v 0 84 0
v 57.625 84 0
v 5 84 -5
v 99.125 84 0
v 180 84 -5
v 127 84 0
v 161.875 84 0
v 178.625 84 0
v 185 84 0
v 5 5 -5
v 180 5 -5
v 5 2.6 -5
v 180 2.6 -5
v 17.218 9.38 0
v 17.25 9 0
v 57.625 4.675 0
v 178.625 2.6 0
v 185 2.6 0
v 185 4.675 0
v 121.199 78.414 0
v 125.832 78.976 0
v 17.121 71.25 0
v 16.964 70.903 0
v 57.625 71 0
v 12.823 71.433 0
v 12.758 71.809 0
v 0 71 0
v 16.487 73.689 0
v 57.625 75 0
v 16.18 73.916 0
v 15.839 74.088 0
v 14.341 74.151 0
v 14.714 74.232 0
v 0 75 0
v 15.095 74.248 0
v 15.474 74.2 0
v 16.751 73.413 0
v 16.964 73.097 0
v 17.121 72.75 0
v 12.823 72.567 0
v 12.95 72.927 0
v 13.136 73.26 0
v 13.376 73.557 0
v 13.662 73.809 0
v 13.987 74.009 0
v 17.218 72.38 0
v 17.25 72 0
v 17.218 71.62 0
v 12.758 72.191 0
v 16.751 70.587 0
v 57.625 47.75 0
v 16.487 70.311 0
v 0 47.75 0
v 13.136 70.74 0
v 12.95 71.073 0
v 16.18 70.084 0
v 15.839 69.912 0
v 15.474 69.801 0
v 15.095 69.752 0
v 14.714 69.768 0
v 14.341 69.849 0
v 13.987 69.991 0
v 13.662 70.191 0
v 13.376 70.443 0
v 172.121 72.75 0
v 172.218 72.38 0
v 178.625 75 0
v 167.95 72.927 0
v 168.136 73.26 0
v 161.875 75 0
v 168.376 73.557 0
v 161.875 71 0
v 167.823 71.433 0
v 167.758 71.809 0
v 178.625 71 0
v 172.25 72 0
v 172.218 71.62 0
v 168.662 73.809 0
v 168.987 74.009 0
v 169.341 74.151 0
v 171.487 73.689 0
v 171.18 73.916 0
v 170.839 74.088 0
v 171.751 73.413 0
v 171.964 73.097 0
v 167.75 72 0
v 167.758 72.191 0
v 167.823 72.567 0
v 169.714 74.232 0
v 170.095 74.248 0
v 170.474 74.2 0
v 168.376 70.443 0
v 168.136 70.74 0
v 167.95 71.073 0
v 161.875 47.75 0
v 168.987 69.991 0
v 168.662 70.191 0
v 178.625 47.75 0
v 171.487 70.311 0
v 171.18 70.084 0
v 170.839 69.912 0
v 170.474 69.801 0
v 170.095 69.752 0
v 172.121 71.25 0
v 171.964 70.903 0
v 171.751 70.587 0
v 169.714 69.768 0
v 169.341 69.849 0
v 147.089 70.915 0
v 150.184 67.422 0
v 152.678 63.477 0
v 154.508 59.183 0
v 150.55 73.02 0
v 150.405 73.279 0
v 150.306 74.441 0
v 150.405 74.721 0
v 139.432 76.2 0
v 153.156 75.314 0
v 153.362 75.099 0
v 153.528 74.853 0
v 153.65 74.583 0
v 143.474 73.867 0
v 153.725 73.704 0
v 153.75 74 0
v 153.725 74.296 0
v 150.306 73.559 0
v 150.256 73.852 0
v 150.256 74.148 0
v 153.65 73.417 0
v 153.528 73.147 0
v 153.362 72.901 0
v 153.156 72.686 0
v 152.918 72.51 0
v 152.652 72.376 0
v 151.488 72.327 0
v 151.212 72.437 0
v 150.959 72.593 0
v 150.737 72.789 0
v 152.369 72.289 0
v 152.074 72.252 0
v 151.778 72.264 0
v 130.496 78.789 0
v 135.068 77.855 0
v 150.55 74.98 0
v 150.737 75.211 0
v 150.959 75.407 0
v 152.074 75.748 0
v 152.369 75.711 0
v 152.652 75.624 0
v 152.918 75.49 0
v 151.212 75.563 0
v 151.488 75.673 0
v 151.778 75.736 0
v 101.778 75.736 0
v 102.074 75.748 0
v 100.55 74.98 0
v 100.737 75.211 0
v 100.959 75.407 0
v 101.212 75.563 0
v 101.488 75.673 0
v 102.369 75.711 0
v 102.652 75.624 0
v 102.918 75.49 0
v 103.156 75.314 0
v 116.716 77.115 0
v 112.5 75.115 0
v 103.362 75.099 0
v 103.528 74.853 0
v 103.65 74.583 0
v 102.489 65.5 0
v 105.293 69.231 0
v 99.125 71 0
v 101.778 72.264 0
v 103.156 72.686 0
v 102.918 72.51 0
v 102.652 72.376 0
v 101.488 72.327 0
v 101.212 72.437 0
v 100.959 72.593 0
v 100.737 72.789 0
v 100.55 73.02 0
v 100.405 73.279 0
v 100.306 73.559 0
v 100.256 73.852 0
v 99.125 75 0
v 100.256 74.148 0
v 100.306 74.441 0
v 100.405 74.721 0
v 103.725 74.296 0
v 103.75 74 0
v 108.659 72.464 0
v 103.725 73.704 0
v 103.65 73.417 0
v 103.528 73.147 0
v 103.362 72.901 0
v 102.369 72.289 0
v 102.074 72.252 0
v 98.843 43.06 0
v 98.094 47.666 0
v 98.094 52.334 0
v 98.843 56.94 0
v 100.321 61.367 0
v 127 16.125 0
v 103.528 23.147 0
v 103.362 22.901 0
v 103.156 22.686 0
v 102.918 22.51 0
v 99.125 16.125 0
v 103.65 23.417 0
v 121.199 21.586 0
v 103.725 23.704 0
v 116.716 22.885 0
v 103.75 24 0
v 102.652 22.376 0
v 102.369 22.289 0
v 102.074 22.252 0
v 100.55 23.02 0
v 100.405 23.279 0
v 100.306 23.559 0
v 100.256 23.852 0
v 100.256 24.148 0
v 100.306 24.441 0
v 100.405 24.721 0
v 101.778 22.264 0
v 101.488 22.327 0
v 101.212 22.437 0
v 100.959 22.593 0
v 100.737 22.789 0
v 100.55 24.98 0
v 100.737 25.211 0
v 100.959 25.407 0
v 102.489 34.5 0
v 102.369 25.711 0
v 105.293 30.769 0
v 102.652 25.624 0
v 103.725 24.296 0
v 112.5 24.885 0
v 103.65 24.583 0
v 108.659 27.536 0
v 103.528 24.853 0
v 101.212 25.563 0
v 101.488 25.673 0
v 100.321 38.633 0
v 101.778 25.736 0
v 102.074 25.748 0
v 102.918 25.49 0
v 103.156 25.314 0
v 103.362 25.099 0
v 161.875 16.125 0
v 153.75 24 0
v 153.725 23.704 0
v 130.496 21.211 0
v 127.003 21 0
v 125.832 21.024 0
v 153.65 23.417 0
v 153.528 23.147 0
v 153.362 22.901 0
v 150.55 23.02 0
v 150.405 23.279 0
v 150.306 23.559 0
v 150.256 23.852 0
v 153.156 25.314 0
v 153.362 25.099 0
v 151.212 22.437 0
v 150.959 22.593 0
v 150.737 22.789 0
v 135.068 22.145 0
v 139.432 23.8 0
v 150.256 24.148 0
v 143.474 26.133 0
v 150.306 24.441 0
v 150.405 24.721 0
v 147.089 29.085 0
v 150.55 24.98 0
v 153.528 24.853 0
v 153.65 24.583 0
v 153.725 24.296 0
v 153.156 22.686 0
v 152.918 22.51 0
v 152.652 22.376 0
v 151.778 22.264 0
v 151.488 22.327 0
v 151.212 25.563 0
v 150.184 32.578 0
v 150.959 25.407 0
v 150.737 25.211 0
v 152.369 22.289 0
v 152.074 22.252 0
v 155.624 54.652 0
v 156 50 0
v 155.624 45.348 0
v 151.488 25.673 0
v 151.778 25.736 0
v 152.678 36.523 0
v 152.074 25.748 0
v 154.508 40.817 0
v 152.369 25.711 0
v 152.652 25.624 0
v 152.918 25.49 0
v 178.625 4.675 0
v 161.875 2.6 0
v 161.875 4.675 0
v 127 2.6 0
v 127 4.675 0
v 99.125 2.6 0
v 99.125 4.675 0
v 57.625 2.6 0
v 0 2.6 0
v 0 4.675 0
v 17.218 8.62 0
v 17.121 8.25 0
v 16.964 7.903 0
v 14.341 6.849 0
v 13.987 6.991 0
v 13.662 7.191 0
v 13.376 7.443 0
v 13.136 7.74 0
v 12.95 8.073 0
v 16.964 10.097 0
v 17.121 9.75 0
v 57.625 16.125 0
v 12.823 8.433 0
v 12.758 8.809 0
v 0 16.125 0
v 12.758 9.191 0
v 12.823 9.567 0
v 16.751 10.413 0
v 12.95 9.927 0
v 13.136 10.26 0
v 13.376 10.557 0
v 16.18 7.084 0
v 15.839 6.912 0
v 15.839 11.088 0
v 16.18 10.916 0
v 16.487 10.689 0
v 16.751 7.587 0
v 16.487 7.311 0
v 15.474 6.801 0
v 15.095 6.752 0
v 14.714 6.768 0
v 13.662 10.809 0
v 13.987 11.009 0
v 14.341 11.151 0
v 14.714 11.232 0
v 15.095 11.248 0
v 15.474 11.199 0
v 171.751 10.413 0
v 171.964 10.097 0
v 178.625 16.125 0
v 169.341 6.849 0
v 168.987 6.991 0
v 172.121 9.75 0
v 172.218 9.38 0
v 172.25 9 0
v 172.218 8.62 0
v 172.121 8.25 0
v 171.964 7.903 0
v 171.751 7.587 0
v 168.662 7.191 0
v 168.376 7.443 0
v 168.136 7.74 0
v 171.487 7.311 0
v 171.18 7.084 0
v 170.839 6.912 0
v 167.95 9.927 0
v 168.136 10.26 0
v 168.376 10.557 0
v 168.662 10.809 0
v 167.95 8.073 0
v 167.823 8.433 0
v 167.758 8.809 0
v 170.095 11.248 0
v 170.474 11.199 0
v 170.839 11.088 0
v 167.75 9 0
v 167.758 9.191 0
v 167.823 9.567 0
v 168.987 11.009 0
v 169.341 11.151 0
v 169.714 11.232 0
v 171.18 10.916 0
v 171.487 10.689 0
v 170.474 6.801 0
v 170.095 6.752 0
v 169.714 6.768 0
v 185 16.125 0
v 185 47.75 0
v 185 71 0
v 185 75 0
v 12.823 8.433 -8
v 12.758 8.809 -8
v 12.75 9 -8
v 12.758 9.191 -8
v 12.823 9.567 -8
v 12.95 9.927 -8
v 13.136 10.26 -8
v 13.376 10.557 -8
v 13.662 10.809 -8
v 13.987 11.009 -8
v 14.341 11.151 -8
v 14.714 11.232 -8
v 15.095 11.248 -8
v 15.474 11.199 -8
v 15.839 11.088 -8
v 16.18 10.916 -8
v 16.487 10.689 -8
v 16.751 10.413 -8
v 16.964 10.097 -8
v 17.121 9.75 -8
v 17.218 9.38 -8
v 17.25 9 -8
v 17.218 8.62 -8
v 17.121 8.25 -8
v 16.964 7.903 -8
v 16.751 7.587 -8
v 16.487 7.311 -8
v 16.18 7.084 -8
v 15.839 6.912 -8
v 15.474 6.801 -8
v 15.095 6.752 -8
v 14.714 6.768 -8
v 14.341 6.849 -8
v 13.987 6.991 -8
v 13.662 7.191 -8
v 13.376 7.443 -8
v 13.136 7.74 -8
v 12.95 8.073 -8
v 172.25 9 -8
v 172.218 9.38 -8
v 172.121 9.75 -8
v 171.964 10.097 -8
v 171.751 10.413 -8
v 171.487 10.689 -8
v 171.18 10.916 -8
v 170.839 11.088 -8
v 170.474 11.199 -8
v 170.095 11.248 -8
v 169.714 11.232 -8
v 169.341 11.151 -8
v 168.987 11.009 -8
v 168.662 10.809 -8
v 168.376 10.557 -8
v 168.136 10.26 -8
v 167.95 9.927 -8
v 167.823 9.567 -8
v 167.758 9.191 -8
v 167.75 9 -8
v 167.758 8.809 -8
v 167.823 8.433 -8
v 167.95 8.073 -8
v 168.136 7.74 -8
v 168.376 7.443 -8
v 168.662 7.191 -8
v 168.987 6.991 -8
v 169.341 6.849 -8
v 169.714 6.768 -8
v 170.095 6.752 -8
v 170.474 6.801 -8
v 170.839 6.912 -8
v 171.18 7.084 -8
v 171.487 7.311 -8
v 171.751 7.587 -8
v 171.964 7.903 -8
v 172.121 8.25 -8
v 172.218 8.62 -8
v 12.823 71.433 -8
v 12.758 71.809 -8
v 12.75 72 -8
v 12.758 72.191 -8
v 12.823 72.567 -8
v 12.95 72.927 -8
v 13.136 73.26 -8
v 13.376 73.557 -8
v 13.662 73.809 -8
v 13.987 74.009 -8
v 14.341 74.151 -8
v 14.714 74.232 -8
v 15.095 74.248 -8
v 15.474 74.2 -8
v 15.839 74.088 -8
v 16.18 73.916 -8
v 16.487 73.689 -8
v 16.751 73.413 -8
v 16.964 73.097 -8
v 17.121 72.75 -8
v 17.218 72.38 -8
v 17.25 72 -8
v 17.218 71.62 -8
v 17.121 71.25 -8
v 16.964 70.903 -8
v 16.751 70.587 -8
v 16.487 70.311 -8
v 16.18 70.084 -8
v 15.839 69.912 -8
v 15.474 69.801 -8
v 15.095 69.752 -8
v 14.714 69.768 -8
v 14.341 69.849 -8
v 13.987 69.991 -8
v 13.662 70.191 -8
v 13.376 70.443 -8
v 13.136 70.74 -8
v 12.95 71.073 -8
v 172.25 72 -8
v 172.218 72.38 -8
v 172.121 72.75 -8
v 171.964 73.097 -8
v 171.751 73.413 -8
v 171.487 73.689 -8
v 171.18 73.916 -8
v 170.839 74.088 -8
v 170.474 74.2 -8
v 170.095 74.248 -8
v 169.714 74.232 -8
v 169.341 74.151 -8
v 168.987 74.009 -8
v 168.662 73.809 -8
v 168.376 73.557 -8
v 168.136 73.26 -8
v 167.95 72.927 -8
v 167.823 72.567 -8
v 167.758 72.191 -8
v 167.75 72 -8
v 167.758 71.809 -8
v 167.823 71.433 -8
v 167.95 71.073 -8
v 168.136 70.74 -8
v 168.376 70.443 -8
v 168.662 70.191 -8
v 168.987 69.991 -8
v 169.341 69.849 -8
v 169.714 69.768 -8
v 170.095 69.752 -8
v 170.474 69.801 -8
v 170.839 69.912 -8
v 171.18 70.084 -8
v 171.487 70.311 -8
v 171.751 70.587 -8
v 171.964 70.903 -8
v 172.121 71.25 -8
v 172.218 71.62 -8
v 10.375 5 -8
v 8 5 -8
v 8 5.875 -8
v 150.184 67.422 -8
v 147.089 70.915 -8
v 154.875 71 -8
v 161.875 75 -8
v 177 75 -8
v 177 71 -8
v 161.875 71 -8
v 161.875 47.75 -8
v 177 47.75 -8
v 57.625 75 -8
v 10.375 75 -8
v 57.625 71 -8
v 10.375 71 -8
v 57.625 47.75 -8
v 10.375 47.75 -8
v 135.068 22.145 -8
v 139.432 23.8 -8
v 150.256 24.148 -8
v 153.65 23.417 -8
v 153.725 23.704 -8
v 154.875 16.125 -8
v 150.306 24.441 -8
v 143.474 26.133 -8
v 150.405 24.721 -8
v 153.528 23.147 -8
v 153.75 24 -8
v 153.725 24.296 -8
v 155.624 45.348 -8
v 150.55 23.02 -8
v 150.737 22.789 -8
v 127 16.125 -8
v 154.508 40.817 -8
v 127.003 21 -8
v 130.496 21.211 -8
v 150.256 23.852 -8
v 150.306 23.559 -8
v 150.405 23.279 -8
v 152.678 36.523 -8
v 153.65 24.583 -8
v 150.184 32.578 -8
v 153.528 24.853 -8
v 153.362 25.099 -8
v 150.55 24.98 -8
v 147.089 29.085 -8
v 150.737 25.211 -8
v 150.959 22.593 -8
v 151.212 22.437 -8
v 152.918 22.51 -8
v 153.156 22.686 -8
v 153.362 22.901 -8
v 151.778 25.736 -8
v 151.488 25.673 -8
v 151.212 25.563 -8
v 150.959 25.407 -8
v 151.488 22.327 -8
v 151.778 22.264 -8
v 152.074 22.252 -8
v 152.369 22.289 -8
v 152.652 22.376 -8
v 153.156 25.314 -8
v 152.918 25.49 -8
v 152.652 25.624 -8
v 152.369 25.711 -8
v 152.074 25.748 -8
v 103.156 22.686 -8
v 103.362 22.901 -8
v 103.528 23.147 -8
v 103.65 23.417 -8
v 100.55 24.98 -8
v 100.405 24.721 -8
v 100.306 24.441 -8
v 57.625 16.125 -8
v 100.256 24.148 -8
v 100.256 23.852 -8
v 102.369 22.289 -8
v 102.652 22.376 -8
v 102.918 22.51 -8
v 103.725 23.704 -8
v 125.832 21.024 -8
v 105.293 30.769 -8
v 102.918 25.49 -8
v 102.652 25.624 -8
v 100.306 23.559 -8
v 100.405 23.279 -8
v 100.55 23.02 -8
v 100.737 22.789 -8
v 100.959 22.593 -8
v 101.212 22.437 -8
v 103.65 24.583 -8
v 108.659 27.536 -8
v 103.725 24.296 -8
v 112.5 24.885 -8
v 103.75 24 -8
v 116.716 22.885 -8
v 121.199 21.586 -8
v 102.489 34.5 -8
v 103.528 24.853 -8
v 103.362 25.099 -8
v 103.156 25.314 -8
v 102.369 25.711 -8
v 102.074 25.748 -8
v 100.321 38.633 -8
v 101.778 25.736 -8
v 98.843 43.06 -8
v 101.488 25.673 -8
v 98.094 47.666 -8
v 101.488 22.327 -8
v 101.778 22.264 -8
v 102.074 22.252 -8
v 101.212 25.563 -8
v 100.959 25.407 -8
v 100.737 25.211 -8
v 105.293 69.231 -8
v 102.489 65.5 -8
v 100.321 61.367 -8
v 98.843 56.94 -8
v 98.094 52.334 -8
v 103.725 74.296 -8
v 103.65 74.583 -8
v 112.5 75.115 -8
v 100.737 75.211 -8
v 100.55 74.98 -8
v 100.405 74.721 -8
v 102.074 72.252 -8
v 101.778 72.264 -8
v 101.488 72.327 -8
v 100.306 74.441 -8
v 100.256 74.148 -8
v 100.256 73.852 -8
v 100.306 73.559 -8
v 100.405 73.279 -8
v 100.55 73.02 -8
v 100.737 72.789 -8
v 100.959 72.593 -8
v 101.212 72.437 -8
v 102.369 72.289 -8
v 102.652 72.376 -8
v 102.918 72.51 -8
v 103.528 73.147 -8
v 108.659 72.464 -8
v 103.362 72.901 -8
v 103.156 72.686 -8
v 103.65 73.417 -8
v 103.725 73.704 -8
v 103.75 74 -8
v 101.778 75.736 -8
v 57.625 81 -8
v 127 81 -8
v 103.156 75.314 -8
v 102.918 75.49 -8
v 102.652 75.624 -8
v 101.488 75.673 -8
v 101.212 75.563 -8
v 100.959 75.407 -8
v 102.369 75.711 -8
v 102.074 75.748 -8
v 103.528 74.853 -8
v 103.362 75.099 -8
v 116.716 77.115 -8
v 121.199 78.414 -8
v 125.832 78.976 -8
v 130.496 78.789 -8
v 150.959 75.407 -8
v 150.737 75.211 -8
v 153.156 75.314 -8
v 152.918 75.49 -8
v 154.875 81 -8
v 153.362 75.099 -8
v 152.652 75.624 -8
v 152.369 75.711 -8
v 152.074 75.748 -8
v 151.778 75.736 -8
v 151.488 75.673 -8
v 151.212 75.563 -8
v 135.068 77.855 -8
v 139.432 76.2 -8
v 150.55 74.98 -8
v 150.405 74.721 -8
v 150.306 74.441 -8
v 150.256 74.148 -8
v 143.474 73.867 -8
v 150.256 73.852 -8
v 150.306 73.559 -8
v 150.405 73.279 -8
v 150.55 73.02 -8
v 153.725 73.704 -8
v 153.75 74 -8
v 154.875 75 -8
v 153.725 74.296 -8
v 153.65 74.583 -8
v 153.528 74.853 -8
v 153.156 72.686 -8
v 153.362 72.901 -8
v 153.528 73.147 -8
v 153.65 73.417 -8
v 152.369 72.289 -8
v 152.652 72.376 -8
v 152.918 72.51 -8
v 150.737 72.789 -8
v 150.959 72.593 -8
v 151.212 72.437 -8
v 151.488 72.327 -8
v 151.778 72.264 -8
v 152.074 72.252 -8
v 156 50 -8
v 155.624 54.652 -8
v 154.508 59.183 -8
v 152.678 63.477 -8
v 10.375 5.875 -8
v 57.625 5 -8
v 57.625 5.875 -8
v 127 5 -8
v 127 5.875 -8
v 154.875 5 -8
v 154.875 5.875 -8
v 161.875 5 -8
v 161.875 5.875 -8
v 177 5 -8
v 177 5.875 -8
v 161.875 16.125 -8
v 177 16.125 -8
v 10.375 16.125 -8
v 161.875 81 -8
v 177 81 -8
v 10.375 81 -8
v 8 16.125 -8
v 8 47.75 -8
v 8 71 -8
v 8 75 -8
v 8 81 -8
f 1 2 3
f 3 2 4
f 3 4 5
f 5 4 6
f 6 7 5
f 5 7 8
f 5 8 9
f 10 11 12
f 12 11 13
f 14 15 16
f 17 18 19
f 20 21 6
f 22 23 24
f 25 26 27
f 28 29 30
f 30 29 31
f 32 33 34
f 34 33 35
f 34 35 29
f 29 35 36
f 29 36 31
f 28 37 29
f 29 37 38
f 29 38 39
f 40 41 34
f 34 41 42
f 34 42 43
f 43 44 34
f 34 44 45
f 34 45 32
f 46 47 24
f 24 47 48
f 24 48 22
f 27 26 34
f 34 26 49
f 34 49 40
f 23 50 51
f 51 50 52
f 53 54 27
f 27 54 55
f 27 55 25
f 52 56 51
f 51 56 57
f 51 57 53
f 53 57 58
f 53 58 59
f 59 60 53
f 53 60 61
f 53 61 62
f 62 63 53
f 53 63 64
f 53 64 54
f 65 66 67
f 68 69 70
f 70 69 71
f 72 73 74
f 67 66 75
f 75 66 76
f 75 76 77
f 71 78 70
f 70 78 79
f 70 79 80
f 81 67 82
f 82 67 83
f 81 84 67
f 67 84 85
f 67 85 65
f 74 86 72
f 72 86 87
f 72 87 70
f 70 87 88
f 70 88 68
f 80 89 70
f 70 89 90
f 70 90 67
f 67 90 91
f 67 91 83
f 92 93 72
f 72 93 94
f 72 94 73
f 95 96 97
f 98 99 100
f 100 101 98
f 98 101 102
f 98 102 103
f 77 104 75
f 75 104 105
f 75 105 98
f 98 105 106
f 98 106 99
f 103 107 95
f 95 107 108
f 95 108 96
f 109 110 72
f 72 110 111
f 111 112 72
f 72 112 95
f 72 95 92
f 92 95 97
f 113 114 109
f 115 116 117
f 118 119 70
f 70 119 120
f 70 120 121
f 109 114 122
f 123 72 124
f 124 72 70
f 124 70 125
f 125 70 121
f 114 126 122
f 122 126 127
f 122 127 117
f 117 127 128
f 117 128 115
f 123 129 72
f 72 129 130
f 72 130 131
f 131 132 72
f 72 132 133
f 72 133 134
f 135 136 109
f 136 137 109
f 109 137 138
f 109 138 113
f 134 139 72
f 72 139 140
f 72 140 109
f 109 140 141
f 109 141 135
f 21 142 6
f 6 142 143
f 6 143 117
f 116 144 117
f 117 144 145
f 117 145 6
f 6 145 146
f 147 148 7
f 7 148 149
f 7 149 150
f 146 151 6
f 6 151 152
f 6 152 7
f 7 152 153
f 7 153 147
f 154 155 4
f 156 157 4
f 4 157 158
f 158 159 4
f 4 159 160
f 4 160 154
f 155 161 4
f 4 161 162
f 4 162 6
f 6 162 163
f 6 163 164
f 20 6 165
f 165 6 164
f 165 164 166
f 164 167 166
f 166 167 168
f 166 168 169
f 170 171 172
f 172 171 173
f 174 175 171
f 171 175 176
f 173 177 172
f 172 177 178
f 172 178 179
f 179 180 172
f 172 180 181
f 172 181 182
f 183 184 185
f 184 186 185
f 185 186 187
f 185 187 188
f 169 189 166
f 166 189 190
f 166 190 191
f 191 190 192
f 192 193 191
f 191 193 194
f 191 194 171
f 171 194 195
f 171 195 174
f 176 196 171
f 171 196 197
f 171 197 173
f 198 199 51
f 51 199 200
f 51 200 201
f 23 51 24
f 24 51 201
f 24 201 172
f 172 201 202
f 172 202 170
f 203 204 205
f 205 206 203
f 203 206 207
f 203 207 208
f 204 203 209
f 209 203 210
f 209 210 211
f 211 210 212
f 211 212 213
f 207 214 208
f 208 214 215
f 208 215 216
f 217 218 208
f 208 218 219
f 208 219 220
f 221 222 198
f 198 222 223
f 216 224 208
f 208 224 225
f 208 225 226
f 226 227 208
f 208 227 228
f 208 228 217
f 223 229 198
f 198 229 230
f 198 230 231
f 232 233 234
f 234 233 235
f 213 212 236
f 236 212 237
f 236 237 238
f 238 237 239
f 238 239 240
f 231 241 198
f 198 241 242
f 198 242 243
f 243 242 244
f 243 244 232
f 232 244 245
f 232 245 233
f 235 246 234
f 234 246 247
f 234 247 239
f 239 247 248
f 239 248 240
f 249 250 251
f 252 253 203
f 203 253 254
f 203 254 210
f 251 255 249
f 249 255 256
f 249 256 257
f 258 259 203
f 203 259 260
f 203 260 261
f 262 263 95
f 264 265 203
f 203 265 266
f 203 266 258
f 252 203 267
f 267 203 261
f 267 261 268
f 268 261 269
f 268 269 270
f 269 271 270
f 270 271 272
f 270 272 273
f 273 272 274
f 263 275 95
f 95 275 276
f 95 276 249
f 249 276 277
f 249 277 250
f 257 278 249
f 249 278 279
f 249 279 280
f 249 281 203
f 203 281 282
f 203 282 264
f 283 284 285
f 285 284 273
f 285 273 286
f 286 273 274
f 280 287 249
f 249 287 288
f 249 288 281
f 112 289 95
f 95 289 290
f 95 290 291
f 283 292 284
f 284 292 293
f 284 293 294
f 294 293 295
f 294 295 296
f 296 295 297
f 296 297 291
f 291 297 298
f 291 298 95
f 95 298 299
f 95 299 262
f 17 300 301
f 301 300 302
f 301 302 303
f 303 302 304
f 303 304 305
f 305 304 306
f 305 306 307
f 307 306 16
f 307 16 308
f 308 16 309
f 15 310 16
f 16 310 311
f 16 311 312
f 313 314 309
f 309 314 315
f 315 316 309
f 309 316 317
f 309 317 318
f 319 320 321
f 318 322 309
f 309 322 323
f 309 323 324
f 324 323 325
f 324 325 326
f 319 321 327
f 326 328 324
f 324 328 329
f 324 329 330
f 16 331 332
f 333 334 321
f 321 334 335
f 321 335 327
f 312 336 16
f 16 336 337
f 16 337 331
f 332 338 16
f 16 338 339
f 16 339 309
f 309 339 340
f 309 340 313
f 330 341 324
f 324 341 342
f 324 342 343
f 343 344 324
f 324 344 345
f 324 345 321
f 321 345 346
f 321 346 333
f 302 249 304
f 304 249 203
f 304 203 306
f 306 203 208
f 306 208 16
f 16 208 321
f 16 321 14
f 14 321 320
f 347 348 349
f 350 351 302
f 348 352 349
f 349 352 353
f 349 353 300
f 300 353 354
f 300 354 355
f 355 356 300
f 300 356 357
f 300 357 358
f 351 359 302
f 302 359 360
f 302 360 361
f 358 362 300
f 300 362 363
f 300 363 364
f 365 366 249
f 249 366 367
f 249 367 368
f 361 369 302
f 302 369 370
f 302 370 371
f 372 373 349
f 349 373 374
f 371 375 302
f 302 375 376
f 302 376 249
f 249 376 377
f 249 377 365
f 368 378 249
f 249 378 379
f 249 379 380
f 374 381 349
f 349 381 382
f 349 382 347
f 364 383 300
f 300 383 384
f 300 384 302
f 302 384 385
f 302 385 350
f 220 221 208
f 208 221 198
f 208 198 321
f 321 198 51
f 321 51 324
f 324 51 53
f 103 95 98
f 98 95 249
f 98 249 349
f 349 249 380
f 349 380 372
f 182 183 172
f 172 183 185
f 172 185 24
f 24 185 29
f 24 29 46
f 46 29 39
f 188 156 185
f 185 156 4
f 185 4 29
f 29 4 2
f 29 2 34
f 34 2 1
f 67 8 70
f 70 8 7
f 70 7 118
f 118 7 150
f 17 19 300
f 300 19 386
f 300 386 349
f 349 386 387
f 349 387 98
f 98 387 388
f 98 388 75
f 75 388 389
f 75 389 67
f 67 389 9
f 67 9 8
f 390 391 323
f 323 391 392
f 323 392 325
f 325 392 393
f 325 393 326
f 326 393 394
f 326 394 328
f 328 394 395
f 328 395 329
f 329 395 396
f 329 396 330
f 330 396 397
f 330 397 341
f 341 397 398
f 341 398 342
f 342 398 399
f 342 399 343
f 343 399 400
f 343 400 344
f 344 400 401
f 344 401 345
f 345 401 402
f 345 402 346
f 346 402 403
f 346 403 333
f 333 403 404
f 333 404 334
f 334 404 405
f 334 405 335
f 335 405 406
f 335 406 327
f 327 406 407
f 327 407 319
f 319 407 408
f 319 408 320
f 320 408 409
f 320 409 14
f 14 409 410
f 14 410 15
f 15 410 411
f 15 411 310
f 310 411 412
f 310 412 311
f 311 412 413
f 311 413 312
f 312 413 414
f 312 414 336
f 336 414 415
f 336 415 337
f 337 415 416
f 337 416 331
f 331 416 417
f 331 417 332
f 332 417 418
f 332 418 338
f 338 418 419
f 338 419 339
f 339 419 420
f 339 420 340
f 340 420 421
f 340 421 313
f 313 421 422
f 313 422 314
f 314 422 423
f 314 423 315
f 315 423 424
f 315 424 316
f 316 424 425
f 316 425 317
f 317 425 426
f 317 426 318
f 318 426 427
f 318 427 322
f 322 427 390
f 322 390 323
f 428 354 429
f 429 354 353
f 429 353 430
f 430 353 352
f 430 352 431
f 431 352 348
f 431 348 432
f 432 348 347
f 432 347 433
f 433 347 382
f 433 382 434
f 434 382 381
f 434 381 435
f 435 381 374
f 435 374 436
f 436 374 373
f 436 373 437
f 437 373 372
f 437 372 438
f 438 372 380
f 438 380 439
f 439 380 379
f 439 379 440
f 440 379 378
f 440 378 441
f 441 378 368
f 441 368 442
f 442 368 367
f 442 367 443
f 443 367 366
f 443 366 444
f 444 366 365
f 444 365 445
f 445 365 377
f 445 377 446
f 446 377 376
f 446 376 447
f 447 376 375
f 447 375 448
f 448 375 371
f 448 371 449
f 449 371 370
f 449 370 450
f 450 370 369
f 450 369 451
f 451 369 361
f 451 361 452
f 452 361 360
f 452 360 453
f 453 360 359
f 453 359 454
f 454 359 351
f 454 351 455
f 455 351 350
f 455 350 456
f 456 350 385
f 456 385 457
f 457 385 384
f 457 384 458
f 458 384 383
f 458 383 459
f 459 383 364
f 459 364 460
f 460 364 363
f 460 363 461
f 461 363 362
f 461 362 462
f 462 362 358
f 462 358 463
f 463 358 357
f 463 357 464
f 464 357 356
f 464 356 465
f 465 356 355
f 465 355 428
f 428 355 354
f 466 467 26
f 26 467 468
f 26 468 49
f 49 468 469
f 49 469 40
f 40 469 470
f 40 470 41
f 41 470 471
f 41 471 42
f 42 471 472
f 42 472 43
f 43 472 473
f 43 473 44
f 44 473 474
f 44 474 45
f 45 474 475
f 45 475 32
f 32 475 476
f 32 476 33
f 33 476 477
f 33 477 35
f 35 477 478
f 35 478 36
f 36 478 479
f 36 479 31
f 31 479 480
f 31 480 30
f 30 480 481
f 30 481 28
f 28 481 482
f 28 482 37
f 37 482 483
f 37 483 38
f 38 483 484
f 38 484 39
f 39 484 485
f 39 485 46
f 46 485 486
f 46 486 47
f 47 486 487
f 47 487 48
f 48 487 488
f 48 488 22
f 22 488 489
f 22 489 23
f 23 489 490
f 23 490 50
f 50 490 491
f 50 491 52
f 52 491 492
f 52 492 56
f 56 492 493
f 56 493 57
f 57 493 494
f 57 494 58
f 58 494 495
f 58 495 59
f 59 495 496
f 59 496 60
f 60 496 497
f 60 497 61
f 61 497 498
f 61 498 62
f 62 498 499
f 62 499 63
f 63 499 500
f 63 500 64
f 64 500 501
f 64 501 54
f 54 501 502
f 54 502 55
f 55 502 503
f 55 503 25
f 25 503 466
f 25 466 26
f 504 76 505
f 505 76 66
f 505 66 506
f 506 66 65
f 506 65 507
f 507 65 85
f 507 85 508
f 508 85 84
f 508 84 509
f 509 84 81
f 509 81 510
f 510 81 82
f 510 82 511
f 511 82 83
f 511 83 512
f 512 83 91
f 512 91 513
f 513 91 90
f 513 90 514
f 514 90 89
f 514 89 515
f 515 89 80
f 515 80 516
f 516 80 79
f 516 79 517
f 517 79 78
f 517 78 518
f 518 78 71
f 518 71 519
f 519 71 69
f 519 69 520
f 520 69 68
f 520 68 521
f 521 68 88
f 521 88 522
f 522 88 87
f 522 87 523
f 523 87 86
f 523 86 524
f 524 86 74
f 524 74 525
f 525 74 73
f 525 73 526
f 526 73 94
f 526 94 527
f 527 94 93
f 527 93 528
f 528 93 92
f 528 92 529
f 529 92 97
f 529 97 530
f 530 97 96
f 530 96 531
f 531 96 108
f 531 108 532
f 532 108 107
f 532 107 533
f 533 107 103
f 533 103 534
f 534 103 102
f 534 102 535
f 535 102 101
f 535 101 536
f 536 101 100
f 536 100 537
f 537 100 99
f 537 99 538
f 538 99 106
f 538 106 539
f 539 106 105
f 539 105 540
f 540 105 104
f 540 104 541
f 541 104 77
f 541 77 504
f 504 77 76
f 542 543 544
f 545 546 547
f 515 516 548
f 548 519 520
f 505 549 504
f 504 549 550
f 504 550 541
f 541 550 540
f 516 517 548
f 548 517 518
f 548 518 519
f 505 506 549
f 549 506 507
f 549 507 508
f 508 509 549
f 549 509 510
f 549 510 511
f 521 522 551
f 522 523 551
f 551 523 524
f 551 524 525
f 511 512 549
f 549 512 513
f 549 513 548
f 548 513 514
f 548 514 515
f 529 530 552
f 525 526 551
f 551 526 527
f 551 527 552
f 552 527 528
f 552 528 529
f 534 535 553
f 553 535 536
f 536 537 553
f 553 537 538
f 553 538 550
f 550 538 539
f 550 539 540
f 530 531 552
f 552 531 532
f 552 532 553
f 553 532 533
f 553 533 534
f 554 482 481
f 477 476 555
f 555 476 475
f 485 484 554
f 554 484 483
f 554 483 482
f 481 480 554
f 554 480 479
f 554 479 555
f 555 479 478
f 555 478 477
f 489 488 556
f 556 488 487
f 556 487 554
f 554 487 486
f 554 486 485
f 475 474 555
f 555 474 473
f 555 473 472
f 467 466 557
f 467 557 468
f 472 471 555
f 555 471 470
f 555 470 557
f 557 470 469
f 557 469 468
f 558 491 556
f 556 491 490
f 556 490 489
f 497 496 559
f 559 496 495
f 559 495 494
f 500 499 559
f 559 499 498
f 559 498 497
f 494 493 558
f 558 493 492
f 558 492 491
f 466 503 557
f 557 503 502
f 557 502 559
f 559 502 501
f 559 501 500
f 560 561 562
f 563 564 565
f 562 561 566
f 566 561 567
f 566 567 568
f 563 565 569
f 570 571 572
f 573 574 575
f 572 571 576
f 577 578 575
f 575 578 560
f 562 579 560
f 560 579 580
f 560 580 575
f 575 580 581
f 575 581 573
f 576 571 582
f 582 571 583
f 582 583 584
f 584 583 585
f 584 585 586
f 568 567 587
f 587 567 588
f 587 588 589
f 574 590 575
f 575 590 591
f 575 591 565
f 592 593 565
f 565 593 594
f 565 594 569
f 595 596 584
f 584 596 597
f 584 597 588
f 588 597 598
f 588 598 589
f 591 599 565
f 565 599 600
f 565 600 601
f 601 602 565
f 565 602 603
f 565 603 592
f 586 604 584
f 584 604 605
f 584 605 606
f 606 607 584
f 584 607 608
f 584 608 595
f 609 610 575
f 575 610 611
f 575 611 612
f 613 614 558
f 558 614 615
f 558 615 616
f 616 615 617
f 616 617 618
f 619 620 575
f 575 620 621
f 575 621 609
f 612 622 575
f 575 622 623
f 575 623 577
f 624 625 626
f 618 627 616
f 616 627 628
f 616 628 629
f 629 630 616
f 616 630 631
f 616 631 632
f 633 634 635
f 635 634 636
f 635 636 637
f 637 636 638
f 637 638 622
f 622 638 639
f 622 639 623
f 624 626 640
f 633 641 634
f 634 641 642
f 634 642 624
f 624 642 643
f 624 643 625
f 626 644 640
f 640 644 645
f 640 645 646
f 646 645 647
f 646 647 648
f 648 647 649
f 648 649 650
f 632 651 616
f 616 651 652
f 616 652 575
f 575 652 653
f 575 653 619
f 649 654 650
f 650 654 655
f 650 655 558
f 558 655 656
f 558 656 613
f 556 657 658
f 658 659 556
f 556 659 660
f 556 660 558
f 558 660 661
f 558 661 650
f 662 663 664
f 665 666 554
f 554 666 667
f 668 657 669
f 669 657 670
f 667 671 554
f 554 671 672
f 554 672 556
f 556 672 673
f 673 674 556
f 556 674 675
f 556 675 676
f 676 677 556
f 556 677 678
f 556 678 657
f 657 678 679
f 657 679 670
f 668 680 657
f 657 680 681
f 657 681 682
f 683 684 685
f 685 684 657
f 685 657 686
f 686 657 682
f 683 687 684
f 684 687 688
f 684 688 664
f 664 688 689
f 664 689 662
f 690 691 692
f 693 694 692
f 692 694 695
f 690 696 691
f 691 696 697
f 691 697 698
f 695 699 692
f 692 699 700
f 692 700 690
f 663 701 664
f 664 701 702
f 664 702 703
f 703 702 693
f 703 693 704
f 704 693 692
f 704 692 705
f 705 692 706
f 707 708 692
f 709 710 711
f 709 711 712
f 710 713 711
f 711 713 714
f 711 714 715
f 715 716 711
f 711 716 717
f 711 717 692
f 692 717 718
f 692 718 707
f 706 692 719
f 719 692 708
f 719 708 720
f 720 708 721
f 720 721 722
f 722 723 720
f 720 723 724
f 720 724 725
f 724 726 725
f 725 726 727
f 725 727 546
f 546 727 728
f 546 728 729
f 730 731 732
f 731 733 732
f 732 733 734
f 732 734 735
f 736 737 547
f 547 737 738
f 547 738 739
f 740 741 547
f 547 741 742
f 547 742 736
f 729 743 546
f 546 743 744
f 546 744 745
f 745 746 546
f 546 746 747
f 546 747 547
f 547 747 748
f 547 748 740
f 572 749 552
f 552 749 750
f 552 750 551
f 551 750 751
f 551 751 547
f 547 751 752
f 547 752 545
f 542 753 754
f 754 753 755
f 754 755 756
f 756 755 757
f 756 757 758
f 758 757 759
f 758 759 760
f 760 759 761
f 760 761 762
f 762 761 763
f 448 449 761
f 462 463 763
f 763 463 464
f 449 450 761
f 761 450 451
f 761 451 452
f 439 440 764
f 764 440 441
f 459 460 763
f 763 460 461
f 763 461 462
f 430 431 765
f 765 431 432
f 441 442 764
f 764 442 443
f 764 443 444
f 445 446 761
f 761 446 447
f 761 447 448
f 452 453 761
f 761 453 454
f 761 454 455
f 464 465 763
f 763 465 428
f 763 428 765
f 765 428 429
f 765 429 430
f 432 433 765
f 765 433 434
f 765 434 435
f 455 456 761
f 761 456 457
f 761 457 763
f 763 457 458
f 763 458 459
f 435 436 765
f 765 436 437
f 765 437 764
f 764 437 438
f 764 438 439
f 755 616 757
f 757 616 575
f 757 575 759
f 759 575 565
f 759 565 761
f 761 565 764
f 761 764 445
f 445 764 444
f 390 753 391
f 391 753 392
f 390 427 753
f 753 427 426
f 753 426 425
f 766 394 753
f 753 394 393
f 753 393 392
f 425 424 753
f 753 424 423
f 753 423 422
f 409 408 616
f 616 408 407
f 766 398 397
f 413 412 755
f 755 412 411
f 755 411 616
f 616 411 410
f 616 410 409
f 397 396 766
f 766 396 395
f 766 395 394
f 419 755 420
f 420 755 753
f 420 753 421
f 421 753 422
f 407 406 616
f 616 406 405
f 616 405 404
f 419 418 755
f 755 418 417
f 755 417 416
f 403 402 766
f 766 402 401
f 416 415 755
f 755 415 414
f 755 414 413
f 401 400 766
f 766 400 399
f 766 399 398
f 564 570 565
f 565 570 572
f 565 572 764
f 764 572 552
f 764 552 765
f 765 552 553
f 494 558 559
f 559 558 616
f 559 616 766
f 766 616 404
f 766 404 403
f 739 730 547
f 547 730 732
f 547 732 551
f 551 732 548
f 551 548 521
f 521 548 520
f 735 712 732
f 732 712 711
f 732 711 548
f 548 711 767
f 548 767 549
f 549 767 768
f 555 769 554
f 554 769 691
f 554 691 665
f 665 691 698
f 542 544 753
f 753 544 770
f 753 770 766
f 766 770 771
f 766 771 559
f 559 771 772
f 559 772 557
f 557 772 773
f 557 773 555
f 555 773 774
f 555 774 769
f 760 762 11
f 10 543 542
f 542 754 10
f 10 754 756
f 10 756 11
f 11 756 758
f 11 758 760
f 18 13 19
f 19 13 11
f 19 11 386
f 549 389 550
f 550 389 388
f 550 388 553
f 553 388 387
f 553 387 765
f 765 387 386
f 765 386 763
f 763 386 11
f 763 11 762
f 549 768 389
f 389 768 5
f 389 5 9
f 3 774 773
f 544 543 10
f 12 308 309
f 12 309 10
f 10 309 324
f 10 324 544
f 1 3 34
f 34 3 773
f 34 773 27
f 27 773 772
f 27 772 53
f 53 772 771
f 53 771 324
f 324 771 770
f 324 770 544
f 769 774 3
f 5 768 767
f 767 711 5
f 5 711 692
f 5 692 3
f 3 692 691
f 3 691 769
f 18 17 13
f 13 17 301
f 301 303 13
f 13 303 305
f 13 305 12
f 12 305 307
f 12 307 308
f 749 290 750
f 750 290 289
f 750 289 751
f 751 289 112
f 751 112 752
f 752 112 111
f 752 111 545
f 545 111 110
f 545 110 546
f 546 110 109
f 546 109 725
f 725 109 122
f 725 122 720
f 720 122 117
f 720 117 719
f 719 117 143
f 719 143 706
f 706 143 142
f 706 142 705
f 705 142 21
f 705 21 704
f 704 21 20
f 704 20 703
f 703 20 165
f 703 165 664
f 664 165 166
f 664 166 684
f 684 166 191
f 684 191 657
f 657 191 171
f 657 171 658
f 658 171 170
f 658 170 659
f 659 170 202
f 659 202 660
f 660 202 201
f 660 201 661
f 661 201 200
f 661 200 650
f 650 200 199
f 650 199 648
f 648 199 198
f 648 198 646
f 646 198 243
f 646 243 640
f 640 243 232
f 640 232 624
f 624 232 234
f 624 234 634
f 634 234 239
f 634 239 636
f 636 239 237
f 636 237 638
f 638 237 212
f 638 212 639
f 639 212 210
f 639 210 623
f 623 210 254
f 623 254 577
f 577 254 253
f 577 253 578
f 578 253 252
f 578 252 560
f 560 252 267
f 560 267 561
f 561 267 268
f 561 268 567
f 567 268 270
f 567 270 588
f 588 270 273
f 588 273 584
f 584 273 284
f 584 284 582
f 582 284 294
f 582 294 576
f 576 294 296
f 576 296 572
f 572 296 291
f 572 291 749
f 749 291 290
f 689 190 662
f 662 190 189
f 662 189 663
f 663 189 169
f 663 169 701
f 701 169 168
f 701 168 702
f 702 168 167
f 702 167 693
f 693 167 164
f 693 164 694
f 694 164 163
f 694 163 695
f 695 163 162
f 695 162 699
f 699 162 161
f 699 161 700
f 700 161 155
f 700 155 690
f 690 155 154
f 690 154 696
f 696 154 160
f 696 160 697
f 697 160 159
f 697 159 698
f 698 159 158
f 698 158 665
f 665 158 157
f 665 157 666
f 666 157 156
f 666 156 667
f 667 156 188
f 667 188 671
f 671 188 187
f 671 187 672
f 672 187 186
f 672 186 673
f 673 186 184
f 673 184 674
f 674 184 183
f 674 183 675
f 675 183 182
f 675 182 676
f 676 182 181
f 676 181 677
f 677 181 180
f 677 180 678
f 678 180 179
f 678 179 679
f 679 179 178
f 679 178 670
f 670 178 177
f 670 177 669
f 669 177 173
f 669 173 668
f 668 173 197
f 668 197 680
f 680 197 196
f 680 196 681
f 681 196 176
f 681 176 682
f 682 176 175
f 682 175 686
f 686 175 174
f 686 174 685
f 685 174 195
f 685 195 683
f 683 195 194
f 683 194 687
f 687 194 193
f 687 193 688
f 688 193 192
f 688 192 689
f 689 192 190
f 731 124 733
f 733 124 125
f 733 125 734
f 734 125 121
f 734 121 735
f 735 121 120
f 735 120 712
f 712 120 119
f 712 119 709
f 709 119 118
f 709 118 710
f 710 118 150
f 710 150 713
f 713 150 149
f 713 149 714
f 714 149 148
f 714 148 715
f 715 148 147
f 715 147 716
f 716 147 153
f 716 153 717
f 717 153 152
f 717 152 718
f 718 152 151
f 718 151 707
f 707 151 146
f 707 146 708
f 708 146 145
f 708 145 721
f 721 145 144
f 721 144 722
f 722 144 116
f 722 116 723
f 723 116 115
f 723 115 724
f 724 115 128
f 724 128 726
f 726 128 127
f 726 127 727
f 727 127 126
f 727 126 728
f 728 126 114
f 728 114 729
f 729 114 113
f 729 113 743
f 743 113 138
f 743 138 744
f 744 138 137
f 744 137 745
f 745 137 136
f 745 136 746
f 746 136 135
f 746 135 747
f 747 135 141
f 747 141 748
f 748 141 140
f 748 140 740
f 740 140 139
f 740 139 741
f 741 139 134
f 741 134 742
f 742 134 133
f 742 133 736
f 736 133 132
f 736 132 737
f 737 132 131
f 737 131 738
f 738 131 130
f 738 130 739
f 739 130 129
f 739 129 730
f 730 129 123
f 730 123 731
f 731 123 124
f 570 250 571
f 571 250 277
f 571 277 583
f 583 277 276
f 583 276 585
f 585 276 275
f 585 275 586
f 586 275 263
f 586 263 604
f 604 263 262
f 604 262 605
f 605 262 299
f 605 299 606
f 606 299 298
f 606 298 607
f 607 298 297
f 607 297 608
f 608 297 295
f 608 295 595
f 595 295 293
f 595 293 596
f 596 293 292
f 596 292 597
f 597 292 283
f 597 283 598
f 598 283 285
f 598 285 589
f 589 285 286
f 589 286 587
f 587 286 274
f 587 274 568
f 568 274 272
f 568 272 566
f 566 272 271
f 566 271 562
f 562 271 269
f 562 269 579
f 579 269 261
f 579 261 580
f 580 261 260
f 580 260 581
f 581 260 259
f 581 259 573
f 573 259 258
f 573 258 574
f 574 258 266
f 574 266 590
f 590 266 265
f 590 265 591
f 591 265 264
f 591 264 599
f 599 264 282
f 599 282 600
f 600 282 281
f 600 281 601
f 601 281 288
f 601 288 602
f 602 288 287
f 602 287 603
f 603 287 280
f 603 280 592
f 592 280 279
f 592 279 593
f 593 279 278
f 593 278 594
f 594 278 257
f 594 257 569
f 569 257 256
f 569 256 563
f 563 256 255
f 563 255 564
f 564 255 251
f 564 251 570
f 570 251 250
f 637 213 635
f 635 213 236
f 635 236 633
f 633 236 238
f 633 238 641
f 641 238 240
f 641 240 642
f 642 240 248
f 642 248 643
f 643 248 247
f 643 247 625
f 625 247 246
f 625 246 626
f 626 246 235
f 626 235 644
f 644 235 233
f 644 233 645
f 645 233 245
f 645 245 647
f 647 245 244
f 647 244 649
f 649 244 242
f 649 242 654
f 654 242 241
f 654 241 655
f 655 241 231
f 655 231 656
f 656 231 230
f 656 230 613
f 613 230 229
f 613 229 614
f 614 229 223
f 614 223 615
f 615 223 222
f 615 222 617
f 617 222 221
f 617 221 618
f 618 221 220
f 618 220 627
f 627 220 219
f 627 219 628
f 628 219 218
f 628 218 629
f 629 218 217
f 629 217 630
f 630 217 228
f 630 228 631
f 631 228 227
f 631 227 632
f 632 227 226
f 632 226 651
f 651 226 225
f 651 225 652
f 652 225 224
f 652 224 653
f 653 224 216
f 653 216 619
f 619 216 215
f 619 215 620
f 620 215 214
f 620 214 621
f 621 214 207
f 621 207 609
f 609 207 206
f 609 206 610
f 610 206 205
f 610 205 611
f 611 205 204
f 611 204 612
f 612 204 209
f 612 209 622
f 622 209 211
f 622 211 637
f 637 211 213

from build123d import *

# Parameters (mm, degrees)
SKETCH1_W           = 185
SKETCH1_H           = 84
SKETCH1_R           = 2.25
BOSS_EXTRUDE1_DEPTH = 5
SKETCH2_W           = 185
SKETCH2_H           = 79
SKETCH2_R           = 2.25
BOSS_EXTRUDE2_DEPTH = 3
CHAMFER1_SIZE       = 8
CHAMFER3_SIZE       = 3
SKETCH3_W           = 7.071067812
SKETCH3_H           = 2.6
CUT_EXTRUDE1_DEPTH  = 221.270985121
SKETCH4_R           = 29
SKETCH4_R_2         = 1.75
CUT_EXTRUDE2_DEPTH  = 204.334699449


with BuildPart() as part:
    # Sketch1 → Boss-Extrude1 (new body)
    with BuildSketch(Plane.XY):
        with Locations((92.5, 42)):
            Rectangle(SKETCH1_W, SKETCH1_H)
        with Locations((15, 9)):
            Circle(SKETCH1_R, mode=Mode.SUBTRACT)
        with Locations(Location((170, 9, 0), (0, 0, 180))):
            Circle(SKETCH1_R, mode=Mode.SUBTRACT)
        with Locations((15, 72)):
            Circle(SKETCH1_R, mode=Mode.SUBTRACT)
        with Locations(Location((170, 72, 0), (0, 0, 180))):
            Circle(SKETCH1_R, mode=Mode.SUBTRACT)
    extrude(amount=-BOSS_EXTRUDE1_DEPTH)

    # Sketch2 → Boss-Extrude2 (add)
    with BuildSketch(Plane(origin=(0, 0, -5), x_dir=(-1, 0, 0), z_dir=(0, 0, -1))):
        with Locations((-92.5, 44.5)):
            Rectangle(SKETCH2_W, SKETCH2_H)
        with Locations(Location((-15, 9, 0), (0, 0, 180))):
            Circle(SKETCH2_R, mode=Mode.SUBTRACT)
        with Locations((-170, 9)):
            Circle(SKETCH2_R, mode=Mode.SUBTRACT)
        with Locations(Location((-15, 72, 0), (0, 0, 180))):
            Circle(SKETCH2_R, mode=Mode.SUBTRACT)
        with Locations((-170, 72)):
            Circle(SKETCH2_R, mode=Mode.SUBTRACT)
    extrude(amount=BOSS_EXTRUDE2_DEPTH)

    # Chamfer1
    # the kernel refuses this chamfer: 8 mm, written as the material it takes off along each edge
    with BuildSketch(Plane(origin=(185, -15.573463904, -8), x_dir=(-0.9996219169112968, 0, -0.027495876610586296), z_dir=(0, 1, 0)), Plane(origin=(0, 104.573463904, -8), x_dir=(0.9996219169112968, 0, -0.027495876610586275), z_dir=(0, -1, 0))) as chamfer1_piece_1:
        Polygon((CHAMFER1_SIZE * 0.999621916911, CHAMFER1_SIZE * 0.0274958766106), (-CHAMFER1_SIZE * 0.0274958766106, CHAMFER1_SIZE * 0.999621916911), (0, 0), align=None)
    extrude(amount=120.146927807, mode=Mode.SUBTRACT)

    # Chamfer3
    chamfer3_edges = [part.edges().sort_by_distance(p)[0] for p in [
        (92.5, 84, -8),
    ]]
    chamfer(chamfer3_edges, length=CHAMFER3_SIZE)

    # Sketch3 → Cut-Extrude1 (cut, through all, along a direction that is not the sketch's normal)
    with BuildSketch(Plane(origin=(92.5, 0, -92.5), x_dir=(-0.7071067811865452, 0, -0.7071067811865498), z_dir=(0.7071067811865498, 0, -0.7071067811865452))):
        with Locations((-127.279220614, 1.3)):
            Rectangle(SKETCH3_W, SKETCH3_H)
    extrude(amount=-CUT_EXTRUDE1_DEPTH, dir=(1, 0, 0), mode=Mode.SUBTRACT)

    # Sketch4 → Cut-Extrude2 (cut, through all)
    with BuildSketch(Plane.XY):
        with Locations((127, 50)):
            Circle(SKETCH4_R)
        with Locations((102, 74)):
            Circle(SKETCH4_R_2)
        with Locations((152, 74)):
            Circle(SKETCH4_R_2)
        with Locations((152, 24)):
            Circle(SKETCH4_R_2)
        with Locations((102, 24)):
            Circle(SKETCH4_R_2)
    extrude(amount=-CUT_EXTRUDE2_DEPTH, mode=Mode.SUBTRACT)


solid = part.part
